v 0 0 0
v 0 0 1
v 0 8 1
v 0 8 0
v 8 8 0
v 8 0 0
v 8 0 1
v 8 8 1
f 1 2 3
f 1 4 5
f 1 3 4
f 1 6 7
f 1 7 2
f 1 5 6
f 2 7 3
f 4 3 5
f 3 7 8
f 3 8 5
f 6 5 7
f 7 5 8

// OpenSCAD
/* Warning, this is a very basic generator with a lot of approximation 
input data : [VQFN, 3NX, 8x8x1.0mm, 44, , B, C04-00399B]
generated by com.zoubworld.electronics.cad.model3d.Basic
Date : Sun Feb 15 10:50:48 CET 2026
*/

//body
color("black")
translate([0,0,0])
cube([8.0,8.0,1.0], center=false);
